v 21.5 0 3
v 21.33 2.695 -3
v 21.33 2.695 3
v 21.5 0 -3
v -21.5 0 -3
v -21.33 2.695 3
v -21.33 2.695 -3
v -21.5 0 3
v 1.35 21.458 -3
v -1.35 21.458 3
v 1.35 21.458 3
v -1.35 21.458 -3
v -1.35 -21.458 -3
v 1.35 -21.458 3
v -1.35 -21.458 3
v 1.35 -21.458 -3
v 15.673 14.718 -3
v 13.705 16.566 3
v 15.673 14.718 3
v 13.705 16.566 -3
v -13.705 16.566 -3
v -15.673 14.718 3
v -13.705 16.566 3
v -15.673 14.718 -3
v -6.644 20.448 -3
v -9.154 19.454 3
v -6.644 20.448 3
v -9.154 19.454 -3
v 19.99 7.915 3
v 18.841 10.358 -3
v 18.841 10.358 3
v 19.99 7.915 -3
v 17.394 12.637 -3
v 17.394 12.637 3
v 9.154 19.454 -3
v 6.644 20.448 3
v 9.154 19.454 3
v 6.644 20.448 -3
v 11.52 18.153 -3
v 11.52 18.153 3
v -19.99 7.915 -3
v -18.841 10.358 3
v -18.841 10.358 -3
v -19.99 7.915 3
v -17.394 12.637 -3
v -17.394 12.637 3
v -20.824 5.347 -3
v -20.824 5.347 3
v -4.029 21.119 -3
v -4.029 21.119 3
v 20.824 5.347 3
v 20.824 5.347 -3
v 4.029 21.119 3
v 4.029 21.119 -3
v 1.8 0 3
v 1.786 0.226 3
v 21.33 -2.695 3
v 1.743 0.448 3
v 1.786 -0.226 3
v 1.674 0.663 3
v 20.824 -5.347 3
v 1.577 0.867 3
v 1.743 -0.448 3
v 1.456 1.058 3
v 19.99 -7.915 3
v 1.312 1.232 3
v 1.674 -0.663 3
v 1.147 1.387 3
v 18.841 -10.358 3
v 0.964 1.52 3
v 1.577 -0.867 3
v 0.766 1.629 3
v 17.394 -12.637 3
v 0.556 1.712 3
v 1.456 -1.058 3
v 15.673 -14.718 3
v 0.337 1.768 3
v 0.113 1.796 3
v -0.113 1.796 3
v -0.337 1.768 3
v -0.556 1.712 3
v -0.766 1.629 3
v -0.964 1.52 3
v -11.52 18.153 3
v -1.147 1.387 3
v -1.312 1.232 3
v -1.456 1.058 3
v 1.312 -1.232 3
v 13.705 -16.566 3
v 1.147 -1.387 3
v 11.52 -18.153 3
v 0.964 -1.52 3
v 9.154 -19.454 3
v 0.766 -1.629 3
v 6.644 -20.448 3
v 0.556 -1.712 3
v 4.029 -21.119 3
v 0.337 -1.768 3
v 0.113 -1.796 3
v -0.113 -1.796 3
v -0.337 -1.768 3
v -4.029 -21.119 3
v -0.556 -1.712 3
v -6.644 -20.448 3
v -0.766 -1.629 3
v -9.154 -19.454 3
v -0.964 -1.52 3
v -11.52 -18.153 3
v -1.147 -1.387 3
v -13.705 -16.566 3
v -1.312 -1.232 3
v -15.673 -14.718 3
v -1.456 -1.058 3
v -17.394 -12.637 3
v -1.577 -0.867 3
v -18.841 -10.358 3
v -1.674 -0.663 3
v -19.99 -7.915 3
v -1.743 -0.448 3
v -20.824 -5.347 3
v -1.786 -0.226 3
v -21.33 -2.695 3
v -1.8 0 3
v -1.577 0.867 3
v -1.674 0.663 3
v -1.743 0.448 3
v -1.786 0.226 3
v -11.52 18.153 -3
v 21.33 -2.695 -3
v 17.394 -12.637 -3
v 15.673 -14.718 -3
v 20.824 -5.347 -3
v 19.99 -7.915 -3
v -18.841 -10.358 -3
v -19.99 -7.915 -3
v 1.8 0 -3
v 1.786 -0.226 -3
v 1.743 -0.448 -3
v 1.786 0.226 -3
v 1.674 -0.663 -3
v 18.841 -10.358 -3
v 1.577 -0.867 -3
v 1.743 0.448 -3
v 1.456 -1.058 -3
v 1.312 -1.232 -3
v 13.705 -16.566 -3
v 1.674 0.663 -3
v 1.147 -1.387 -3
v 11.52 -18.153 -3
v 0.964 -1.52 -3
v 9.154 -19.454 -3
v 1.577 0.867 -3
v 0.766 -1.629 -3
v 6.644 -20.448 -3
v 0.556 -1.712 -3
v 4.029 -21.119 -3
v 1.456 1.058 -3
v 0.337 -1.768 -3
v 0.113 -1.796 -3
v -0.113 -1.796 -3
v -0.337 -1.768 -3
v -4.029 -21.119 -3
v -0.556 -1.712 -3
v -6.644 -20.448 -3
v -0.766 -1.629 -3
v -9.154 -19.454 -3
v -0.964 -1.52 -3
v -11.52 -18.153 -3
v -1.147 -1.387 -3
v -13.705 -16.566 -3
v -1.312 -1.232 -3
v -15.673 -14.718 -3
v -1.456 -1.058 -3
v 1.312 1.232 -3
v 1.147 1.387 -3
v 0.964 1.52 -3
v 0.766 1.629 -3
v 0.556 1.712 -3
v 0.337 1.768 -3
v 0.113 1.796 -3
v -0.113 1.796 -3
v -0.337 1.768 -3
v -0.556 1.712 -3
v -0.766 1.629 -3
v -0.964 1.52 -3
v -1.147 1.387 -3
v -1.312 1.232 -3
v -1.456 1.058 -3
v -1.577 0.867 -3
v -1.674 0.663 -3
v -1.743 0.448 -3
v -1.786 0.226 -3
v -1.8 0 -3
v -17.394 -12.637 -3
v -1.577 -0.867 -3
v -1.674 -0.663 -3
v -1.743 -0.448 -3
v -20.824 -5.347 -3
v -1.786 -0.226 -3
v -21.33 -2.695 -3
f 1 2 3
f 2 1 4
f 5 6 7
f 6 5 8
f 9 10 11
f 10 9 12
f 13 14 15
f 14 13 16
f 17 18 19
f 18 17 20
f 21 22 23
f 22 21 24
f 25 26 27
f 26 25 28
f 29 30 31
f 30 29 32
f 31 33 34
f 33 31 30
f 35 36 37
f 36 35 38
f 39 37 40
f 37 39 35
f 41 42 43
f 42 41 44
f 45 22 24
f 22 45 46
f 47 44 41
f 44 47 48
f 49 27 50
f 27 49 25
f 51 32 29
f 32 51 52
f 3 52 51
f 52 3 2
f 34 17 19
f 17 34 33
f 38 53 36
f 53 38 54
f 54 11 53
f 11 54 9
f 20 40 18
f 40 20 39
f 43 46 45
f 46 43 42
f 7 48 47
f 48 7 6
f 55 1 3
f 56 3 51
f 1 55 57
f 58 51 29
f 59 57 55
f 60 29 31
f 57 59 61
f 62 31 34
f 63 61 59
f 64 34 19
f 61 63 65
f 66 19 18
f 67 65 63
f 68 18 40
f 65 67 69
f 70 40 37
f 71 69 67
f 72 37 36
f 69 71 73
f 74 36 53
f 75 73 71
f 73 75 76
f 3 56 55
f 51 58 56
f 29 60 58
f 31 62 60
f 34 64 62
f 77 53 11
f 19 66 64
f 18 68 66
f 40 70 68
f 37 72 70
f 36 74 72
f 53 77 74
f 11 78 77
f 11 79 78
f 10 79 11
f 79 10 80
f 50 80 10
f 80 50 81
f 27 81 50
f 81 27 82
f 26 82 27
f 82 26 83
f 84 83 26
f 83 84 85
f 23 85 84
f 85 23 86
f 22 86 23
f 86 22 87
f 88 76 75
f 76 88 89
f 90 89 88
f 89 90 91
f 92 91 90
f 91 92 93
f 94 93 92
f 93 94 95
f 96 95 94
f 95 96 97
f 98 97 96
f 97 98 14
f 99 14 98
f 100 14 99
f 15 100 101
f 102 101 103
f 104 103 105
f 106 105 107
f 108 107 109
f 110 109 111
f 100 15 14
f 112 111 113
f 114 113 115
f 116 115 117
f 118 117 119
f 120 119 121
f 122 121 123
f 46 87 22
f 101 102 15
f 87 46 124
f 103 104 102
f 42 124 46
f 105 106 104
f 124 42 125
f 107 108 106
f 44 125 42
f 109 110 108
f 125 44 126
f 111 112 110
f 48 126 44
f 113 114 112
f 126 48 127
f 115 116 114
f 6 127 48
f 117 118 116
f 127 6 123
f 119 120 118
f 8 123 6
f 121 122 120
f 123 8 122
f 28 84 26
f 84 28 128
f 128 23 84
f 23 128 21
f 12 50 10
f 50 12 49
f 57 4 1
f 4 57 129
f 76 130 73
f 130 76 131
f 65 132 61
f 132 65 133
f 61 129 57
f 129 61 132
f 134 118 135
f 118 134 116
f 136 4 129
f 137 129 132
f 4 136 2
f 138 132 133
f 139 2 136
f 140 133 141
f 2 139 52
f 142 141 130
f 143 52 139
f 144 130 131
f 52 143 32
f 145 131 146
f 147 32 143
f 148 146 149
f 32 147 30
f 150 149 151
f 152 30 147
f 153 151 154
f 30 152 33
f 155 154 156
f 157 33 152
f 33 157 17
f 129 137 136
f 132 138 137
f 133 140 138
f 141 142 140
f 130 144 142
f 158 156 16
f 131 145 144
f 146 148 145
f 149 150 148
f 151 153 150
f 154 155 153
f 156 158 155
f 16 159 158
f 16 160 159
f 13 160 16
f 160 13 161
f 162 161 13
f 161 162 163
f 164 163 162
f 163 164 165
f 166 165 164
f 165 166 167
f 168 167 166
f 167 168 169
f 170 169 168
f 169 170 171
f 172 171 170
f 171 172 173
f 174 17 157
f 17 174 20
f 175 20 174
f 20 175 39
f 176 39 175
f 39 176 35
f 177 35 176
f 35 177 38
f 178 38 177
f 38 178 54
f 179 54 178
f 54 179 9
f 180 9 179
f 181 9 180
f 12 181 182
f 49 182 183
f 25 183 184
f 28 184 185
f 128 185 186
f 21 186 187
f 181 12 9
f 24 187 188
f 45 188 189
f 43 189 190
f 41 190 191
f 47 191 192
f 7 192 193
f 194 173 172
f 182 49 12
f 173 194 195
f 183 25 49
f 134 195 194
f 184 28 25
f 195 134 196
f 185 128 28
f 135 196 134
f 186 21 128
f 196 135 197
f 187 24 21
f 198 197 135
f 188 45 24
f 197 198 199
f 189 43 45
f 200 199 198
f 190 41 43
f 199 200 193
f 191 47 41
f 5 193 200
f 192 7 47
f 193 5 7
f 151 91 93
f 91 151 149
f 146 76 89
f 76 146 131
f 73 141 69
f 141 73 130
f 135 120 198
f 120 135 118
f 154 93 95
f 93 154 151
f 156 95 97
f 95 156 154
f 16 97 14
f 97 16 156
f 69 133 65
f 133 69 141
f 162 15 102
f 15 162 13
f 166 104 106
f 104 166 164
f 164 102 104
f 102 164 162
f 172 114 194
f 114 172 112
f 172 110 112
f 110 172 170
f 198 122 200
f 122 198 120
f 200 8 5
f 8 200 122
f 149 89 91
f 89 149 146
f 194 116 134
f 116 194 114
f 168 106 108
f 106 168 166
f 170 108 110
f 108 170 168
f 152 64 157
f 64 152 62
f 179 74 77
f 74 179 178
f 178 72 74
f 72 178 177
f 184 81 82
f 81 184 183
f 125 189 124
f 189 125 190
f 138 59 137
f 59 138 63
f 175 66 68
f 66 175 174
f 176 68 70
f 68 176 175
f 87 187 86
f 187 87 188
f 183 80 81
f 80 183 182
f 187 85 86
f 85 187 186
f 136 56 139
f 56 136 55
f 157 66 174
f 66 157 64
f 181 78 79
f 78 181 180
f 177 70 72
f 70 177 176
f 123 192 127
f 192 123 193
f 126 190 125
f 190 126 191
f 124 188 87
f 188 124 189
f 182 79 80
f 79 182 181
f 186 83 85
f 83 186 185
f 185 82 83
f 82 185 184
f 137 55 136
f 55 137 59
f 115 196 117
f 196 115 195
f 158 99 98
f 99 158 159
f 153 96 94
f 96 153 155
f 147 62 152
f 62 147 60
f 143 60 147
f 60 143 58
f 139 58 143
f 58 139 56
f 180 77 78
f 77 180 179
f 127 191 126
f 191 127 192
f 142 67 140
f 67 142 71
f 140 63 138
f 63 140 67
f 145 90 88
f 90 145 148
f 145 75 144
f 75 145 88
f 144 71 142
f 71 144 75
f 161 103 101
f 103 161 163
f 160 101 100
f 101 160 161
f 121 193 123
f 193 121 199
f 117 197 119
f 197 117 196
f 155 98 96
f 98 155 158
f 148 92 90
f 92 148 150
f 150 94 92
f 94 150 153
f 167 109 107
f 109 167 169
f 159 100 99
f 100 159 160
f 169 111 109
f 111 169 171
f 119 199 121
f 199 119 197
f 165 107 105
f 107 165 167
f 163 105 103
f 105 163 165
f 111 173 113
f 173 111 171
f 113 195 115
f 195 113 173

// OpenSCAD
$fn = 50;


difference() {
	union() {
		translate(v = [0, 0, -3.0000000000]) {
			cylinder(h = 6, r = 21.5000000000);
		}
	}
	union() {
		translate(v = [0, 0, -100.0000000000]) {
			cylinder(h = 200, r = 1.8000000000);
		}
	}
}
